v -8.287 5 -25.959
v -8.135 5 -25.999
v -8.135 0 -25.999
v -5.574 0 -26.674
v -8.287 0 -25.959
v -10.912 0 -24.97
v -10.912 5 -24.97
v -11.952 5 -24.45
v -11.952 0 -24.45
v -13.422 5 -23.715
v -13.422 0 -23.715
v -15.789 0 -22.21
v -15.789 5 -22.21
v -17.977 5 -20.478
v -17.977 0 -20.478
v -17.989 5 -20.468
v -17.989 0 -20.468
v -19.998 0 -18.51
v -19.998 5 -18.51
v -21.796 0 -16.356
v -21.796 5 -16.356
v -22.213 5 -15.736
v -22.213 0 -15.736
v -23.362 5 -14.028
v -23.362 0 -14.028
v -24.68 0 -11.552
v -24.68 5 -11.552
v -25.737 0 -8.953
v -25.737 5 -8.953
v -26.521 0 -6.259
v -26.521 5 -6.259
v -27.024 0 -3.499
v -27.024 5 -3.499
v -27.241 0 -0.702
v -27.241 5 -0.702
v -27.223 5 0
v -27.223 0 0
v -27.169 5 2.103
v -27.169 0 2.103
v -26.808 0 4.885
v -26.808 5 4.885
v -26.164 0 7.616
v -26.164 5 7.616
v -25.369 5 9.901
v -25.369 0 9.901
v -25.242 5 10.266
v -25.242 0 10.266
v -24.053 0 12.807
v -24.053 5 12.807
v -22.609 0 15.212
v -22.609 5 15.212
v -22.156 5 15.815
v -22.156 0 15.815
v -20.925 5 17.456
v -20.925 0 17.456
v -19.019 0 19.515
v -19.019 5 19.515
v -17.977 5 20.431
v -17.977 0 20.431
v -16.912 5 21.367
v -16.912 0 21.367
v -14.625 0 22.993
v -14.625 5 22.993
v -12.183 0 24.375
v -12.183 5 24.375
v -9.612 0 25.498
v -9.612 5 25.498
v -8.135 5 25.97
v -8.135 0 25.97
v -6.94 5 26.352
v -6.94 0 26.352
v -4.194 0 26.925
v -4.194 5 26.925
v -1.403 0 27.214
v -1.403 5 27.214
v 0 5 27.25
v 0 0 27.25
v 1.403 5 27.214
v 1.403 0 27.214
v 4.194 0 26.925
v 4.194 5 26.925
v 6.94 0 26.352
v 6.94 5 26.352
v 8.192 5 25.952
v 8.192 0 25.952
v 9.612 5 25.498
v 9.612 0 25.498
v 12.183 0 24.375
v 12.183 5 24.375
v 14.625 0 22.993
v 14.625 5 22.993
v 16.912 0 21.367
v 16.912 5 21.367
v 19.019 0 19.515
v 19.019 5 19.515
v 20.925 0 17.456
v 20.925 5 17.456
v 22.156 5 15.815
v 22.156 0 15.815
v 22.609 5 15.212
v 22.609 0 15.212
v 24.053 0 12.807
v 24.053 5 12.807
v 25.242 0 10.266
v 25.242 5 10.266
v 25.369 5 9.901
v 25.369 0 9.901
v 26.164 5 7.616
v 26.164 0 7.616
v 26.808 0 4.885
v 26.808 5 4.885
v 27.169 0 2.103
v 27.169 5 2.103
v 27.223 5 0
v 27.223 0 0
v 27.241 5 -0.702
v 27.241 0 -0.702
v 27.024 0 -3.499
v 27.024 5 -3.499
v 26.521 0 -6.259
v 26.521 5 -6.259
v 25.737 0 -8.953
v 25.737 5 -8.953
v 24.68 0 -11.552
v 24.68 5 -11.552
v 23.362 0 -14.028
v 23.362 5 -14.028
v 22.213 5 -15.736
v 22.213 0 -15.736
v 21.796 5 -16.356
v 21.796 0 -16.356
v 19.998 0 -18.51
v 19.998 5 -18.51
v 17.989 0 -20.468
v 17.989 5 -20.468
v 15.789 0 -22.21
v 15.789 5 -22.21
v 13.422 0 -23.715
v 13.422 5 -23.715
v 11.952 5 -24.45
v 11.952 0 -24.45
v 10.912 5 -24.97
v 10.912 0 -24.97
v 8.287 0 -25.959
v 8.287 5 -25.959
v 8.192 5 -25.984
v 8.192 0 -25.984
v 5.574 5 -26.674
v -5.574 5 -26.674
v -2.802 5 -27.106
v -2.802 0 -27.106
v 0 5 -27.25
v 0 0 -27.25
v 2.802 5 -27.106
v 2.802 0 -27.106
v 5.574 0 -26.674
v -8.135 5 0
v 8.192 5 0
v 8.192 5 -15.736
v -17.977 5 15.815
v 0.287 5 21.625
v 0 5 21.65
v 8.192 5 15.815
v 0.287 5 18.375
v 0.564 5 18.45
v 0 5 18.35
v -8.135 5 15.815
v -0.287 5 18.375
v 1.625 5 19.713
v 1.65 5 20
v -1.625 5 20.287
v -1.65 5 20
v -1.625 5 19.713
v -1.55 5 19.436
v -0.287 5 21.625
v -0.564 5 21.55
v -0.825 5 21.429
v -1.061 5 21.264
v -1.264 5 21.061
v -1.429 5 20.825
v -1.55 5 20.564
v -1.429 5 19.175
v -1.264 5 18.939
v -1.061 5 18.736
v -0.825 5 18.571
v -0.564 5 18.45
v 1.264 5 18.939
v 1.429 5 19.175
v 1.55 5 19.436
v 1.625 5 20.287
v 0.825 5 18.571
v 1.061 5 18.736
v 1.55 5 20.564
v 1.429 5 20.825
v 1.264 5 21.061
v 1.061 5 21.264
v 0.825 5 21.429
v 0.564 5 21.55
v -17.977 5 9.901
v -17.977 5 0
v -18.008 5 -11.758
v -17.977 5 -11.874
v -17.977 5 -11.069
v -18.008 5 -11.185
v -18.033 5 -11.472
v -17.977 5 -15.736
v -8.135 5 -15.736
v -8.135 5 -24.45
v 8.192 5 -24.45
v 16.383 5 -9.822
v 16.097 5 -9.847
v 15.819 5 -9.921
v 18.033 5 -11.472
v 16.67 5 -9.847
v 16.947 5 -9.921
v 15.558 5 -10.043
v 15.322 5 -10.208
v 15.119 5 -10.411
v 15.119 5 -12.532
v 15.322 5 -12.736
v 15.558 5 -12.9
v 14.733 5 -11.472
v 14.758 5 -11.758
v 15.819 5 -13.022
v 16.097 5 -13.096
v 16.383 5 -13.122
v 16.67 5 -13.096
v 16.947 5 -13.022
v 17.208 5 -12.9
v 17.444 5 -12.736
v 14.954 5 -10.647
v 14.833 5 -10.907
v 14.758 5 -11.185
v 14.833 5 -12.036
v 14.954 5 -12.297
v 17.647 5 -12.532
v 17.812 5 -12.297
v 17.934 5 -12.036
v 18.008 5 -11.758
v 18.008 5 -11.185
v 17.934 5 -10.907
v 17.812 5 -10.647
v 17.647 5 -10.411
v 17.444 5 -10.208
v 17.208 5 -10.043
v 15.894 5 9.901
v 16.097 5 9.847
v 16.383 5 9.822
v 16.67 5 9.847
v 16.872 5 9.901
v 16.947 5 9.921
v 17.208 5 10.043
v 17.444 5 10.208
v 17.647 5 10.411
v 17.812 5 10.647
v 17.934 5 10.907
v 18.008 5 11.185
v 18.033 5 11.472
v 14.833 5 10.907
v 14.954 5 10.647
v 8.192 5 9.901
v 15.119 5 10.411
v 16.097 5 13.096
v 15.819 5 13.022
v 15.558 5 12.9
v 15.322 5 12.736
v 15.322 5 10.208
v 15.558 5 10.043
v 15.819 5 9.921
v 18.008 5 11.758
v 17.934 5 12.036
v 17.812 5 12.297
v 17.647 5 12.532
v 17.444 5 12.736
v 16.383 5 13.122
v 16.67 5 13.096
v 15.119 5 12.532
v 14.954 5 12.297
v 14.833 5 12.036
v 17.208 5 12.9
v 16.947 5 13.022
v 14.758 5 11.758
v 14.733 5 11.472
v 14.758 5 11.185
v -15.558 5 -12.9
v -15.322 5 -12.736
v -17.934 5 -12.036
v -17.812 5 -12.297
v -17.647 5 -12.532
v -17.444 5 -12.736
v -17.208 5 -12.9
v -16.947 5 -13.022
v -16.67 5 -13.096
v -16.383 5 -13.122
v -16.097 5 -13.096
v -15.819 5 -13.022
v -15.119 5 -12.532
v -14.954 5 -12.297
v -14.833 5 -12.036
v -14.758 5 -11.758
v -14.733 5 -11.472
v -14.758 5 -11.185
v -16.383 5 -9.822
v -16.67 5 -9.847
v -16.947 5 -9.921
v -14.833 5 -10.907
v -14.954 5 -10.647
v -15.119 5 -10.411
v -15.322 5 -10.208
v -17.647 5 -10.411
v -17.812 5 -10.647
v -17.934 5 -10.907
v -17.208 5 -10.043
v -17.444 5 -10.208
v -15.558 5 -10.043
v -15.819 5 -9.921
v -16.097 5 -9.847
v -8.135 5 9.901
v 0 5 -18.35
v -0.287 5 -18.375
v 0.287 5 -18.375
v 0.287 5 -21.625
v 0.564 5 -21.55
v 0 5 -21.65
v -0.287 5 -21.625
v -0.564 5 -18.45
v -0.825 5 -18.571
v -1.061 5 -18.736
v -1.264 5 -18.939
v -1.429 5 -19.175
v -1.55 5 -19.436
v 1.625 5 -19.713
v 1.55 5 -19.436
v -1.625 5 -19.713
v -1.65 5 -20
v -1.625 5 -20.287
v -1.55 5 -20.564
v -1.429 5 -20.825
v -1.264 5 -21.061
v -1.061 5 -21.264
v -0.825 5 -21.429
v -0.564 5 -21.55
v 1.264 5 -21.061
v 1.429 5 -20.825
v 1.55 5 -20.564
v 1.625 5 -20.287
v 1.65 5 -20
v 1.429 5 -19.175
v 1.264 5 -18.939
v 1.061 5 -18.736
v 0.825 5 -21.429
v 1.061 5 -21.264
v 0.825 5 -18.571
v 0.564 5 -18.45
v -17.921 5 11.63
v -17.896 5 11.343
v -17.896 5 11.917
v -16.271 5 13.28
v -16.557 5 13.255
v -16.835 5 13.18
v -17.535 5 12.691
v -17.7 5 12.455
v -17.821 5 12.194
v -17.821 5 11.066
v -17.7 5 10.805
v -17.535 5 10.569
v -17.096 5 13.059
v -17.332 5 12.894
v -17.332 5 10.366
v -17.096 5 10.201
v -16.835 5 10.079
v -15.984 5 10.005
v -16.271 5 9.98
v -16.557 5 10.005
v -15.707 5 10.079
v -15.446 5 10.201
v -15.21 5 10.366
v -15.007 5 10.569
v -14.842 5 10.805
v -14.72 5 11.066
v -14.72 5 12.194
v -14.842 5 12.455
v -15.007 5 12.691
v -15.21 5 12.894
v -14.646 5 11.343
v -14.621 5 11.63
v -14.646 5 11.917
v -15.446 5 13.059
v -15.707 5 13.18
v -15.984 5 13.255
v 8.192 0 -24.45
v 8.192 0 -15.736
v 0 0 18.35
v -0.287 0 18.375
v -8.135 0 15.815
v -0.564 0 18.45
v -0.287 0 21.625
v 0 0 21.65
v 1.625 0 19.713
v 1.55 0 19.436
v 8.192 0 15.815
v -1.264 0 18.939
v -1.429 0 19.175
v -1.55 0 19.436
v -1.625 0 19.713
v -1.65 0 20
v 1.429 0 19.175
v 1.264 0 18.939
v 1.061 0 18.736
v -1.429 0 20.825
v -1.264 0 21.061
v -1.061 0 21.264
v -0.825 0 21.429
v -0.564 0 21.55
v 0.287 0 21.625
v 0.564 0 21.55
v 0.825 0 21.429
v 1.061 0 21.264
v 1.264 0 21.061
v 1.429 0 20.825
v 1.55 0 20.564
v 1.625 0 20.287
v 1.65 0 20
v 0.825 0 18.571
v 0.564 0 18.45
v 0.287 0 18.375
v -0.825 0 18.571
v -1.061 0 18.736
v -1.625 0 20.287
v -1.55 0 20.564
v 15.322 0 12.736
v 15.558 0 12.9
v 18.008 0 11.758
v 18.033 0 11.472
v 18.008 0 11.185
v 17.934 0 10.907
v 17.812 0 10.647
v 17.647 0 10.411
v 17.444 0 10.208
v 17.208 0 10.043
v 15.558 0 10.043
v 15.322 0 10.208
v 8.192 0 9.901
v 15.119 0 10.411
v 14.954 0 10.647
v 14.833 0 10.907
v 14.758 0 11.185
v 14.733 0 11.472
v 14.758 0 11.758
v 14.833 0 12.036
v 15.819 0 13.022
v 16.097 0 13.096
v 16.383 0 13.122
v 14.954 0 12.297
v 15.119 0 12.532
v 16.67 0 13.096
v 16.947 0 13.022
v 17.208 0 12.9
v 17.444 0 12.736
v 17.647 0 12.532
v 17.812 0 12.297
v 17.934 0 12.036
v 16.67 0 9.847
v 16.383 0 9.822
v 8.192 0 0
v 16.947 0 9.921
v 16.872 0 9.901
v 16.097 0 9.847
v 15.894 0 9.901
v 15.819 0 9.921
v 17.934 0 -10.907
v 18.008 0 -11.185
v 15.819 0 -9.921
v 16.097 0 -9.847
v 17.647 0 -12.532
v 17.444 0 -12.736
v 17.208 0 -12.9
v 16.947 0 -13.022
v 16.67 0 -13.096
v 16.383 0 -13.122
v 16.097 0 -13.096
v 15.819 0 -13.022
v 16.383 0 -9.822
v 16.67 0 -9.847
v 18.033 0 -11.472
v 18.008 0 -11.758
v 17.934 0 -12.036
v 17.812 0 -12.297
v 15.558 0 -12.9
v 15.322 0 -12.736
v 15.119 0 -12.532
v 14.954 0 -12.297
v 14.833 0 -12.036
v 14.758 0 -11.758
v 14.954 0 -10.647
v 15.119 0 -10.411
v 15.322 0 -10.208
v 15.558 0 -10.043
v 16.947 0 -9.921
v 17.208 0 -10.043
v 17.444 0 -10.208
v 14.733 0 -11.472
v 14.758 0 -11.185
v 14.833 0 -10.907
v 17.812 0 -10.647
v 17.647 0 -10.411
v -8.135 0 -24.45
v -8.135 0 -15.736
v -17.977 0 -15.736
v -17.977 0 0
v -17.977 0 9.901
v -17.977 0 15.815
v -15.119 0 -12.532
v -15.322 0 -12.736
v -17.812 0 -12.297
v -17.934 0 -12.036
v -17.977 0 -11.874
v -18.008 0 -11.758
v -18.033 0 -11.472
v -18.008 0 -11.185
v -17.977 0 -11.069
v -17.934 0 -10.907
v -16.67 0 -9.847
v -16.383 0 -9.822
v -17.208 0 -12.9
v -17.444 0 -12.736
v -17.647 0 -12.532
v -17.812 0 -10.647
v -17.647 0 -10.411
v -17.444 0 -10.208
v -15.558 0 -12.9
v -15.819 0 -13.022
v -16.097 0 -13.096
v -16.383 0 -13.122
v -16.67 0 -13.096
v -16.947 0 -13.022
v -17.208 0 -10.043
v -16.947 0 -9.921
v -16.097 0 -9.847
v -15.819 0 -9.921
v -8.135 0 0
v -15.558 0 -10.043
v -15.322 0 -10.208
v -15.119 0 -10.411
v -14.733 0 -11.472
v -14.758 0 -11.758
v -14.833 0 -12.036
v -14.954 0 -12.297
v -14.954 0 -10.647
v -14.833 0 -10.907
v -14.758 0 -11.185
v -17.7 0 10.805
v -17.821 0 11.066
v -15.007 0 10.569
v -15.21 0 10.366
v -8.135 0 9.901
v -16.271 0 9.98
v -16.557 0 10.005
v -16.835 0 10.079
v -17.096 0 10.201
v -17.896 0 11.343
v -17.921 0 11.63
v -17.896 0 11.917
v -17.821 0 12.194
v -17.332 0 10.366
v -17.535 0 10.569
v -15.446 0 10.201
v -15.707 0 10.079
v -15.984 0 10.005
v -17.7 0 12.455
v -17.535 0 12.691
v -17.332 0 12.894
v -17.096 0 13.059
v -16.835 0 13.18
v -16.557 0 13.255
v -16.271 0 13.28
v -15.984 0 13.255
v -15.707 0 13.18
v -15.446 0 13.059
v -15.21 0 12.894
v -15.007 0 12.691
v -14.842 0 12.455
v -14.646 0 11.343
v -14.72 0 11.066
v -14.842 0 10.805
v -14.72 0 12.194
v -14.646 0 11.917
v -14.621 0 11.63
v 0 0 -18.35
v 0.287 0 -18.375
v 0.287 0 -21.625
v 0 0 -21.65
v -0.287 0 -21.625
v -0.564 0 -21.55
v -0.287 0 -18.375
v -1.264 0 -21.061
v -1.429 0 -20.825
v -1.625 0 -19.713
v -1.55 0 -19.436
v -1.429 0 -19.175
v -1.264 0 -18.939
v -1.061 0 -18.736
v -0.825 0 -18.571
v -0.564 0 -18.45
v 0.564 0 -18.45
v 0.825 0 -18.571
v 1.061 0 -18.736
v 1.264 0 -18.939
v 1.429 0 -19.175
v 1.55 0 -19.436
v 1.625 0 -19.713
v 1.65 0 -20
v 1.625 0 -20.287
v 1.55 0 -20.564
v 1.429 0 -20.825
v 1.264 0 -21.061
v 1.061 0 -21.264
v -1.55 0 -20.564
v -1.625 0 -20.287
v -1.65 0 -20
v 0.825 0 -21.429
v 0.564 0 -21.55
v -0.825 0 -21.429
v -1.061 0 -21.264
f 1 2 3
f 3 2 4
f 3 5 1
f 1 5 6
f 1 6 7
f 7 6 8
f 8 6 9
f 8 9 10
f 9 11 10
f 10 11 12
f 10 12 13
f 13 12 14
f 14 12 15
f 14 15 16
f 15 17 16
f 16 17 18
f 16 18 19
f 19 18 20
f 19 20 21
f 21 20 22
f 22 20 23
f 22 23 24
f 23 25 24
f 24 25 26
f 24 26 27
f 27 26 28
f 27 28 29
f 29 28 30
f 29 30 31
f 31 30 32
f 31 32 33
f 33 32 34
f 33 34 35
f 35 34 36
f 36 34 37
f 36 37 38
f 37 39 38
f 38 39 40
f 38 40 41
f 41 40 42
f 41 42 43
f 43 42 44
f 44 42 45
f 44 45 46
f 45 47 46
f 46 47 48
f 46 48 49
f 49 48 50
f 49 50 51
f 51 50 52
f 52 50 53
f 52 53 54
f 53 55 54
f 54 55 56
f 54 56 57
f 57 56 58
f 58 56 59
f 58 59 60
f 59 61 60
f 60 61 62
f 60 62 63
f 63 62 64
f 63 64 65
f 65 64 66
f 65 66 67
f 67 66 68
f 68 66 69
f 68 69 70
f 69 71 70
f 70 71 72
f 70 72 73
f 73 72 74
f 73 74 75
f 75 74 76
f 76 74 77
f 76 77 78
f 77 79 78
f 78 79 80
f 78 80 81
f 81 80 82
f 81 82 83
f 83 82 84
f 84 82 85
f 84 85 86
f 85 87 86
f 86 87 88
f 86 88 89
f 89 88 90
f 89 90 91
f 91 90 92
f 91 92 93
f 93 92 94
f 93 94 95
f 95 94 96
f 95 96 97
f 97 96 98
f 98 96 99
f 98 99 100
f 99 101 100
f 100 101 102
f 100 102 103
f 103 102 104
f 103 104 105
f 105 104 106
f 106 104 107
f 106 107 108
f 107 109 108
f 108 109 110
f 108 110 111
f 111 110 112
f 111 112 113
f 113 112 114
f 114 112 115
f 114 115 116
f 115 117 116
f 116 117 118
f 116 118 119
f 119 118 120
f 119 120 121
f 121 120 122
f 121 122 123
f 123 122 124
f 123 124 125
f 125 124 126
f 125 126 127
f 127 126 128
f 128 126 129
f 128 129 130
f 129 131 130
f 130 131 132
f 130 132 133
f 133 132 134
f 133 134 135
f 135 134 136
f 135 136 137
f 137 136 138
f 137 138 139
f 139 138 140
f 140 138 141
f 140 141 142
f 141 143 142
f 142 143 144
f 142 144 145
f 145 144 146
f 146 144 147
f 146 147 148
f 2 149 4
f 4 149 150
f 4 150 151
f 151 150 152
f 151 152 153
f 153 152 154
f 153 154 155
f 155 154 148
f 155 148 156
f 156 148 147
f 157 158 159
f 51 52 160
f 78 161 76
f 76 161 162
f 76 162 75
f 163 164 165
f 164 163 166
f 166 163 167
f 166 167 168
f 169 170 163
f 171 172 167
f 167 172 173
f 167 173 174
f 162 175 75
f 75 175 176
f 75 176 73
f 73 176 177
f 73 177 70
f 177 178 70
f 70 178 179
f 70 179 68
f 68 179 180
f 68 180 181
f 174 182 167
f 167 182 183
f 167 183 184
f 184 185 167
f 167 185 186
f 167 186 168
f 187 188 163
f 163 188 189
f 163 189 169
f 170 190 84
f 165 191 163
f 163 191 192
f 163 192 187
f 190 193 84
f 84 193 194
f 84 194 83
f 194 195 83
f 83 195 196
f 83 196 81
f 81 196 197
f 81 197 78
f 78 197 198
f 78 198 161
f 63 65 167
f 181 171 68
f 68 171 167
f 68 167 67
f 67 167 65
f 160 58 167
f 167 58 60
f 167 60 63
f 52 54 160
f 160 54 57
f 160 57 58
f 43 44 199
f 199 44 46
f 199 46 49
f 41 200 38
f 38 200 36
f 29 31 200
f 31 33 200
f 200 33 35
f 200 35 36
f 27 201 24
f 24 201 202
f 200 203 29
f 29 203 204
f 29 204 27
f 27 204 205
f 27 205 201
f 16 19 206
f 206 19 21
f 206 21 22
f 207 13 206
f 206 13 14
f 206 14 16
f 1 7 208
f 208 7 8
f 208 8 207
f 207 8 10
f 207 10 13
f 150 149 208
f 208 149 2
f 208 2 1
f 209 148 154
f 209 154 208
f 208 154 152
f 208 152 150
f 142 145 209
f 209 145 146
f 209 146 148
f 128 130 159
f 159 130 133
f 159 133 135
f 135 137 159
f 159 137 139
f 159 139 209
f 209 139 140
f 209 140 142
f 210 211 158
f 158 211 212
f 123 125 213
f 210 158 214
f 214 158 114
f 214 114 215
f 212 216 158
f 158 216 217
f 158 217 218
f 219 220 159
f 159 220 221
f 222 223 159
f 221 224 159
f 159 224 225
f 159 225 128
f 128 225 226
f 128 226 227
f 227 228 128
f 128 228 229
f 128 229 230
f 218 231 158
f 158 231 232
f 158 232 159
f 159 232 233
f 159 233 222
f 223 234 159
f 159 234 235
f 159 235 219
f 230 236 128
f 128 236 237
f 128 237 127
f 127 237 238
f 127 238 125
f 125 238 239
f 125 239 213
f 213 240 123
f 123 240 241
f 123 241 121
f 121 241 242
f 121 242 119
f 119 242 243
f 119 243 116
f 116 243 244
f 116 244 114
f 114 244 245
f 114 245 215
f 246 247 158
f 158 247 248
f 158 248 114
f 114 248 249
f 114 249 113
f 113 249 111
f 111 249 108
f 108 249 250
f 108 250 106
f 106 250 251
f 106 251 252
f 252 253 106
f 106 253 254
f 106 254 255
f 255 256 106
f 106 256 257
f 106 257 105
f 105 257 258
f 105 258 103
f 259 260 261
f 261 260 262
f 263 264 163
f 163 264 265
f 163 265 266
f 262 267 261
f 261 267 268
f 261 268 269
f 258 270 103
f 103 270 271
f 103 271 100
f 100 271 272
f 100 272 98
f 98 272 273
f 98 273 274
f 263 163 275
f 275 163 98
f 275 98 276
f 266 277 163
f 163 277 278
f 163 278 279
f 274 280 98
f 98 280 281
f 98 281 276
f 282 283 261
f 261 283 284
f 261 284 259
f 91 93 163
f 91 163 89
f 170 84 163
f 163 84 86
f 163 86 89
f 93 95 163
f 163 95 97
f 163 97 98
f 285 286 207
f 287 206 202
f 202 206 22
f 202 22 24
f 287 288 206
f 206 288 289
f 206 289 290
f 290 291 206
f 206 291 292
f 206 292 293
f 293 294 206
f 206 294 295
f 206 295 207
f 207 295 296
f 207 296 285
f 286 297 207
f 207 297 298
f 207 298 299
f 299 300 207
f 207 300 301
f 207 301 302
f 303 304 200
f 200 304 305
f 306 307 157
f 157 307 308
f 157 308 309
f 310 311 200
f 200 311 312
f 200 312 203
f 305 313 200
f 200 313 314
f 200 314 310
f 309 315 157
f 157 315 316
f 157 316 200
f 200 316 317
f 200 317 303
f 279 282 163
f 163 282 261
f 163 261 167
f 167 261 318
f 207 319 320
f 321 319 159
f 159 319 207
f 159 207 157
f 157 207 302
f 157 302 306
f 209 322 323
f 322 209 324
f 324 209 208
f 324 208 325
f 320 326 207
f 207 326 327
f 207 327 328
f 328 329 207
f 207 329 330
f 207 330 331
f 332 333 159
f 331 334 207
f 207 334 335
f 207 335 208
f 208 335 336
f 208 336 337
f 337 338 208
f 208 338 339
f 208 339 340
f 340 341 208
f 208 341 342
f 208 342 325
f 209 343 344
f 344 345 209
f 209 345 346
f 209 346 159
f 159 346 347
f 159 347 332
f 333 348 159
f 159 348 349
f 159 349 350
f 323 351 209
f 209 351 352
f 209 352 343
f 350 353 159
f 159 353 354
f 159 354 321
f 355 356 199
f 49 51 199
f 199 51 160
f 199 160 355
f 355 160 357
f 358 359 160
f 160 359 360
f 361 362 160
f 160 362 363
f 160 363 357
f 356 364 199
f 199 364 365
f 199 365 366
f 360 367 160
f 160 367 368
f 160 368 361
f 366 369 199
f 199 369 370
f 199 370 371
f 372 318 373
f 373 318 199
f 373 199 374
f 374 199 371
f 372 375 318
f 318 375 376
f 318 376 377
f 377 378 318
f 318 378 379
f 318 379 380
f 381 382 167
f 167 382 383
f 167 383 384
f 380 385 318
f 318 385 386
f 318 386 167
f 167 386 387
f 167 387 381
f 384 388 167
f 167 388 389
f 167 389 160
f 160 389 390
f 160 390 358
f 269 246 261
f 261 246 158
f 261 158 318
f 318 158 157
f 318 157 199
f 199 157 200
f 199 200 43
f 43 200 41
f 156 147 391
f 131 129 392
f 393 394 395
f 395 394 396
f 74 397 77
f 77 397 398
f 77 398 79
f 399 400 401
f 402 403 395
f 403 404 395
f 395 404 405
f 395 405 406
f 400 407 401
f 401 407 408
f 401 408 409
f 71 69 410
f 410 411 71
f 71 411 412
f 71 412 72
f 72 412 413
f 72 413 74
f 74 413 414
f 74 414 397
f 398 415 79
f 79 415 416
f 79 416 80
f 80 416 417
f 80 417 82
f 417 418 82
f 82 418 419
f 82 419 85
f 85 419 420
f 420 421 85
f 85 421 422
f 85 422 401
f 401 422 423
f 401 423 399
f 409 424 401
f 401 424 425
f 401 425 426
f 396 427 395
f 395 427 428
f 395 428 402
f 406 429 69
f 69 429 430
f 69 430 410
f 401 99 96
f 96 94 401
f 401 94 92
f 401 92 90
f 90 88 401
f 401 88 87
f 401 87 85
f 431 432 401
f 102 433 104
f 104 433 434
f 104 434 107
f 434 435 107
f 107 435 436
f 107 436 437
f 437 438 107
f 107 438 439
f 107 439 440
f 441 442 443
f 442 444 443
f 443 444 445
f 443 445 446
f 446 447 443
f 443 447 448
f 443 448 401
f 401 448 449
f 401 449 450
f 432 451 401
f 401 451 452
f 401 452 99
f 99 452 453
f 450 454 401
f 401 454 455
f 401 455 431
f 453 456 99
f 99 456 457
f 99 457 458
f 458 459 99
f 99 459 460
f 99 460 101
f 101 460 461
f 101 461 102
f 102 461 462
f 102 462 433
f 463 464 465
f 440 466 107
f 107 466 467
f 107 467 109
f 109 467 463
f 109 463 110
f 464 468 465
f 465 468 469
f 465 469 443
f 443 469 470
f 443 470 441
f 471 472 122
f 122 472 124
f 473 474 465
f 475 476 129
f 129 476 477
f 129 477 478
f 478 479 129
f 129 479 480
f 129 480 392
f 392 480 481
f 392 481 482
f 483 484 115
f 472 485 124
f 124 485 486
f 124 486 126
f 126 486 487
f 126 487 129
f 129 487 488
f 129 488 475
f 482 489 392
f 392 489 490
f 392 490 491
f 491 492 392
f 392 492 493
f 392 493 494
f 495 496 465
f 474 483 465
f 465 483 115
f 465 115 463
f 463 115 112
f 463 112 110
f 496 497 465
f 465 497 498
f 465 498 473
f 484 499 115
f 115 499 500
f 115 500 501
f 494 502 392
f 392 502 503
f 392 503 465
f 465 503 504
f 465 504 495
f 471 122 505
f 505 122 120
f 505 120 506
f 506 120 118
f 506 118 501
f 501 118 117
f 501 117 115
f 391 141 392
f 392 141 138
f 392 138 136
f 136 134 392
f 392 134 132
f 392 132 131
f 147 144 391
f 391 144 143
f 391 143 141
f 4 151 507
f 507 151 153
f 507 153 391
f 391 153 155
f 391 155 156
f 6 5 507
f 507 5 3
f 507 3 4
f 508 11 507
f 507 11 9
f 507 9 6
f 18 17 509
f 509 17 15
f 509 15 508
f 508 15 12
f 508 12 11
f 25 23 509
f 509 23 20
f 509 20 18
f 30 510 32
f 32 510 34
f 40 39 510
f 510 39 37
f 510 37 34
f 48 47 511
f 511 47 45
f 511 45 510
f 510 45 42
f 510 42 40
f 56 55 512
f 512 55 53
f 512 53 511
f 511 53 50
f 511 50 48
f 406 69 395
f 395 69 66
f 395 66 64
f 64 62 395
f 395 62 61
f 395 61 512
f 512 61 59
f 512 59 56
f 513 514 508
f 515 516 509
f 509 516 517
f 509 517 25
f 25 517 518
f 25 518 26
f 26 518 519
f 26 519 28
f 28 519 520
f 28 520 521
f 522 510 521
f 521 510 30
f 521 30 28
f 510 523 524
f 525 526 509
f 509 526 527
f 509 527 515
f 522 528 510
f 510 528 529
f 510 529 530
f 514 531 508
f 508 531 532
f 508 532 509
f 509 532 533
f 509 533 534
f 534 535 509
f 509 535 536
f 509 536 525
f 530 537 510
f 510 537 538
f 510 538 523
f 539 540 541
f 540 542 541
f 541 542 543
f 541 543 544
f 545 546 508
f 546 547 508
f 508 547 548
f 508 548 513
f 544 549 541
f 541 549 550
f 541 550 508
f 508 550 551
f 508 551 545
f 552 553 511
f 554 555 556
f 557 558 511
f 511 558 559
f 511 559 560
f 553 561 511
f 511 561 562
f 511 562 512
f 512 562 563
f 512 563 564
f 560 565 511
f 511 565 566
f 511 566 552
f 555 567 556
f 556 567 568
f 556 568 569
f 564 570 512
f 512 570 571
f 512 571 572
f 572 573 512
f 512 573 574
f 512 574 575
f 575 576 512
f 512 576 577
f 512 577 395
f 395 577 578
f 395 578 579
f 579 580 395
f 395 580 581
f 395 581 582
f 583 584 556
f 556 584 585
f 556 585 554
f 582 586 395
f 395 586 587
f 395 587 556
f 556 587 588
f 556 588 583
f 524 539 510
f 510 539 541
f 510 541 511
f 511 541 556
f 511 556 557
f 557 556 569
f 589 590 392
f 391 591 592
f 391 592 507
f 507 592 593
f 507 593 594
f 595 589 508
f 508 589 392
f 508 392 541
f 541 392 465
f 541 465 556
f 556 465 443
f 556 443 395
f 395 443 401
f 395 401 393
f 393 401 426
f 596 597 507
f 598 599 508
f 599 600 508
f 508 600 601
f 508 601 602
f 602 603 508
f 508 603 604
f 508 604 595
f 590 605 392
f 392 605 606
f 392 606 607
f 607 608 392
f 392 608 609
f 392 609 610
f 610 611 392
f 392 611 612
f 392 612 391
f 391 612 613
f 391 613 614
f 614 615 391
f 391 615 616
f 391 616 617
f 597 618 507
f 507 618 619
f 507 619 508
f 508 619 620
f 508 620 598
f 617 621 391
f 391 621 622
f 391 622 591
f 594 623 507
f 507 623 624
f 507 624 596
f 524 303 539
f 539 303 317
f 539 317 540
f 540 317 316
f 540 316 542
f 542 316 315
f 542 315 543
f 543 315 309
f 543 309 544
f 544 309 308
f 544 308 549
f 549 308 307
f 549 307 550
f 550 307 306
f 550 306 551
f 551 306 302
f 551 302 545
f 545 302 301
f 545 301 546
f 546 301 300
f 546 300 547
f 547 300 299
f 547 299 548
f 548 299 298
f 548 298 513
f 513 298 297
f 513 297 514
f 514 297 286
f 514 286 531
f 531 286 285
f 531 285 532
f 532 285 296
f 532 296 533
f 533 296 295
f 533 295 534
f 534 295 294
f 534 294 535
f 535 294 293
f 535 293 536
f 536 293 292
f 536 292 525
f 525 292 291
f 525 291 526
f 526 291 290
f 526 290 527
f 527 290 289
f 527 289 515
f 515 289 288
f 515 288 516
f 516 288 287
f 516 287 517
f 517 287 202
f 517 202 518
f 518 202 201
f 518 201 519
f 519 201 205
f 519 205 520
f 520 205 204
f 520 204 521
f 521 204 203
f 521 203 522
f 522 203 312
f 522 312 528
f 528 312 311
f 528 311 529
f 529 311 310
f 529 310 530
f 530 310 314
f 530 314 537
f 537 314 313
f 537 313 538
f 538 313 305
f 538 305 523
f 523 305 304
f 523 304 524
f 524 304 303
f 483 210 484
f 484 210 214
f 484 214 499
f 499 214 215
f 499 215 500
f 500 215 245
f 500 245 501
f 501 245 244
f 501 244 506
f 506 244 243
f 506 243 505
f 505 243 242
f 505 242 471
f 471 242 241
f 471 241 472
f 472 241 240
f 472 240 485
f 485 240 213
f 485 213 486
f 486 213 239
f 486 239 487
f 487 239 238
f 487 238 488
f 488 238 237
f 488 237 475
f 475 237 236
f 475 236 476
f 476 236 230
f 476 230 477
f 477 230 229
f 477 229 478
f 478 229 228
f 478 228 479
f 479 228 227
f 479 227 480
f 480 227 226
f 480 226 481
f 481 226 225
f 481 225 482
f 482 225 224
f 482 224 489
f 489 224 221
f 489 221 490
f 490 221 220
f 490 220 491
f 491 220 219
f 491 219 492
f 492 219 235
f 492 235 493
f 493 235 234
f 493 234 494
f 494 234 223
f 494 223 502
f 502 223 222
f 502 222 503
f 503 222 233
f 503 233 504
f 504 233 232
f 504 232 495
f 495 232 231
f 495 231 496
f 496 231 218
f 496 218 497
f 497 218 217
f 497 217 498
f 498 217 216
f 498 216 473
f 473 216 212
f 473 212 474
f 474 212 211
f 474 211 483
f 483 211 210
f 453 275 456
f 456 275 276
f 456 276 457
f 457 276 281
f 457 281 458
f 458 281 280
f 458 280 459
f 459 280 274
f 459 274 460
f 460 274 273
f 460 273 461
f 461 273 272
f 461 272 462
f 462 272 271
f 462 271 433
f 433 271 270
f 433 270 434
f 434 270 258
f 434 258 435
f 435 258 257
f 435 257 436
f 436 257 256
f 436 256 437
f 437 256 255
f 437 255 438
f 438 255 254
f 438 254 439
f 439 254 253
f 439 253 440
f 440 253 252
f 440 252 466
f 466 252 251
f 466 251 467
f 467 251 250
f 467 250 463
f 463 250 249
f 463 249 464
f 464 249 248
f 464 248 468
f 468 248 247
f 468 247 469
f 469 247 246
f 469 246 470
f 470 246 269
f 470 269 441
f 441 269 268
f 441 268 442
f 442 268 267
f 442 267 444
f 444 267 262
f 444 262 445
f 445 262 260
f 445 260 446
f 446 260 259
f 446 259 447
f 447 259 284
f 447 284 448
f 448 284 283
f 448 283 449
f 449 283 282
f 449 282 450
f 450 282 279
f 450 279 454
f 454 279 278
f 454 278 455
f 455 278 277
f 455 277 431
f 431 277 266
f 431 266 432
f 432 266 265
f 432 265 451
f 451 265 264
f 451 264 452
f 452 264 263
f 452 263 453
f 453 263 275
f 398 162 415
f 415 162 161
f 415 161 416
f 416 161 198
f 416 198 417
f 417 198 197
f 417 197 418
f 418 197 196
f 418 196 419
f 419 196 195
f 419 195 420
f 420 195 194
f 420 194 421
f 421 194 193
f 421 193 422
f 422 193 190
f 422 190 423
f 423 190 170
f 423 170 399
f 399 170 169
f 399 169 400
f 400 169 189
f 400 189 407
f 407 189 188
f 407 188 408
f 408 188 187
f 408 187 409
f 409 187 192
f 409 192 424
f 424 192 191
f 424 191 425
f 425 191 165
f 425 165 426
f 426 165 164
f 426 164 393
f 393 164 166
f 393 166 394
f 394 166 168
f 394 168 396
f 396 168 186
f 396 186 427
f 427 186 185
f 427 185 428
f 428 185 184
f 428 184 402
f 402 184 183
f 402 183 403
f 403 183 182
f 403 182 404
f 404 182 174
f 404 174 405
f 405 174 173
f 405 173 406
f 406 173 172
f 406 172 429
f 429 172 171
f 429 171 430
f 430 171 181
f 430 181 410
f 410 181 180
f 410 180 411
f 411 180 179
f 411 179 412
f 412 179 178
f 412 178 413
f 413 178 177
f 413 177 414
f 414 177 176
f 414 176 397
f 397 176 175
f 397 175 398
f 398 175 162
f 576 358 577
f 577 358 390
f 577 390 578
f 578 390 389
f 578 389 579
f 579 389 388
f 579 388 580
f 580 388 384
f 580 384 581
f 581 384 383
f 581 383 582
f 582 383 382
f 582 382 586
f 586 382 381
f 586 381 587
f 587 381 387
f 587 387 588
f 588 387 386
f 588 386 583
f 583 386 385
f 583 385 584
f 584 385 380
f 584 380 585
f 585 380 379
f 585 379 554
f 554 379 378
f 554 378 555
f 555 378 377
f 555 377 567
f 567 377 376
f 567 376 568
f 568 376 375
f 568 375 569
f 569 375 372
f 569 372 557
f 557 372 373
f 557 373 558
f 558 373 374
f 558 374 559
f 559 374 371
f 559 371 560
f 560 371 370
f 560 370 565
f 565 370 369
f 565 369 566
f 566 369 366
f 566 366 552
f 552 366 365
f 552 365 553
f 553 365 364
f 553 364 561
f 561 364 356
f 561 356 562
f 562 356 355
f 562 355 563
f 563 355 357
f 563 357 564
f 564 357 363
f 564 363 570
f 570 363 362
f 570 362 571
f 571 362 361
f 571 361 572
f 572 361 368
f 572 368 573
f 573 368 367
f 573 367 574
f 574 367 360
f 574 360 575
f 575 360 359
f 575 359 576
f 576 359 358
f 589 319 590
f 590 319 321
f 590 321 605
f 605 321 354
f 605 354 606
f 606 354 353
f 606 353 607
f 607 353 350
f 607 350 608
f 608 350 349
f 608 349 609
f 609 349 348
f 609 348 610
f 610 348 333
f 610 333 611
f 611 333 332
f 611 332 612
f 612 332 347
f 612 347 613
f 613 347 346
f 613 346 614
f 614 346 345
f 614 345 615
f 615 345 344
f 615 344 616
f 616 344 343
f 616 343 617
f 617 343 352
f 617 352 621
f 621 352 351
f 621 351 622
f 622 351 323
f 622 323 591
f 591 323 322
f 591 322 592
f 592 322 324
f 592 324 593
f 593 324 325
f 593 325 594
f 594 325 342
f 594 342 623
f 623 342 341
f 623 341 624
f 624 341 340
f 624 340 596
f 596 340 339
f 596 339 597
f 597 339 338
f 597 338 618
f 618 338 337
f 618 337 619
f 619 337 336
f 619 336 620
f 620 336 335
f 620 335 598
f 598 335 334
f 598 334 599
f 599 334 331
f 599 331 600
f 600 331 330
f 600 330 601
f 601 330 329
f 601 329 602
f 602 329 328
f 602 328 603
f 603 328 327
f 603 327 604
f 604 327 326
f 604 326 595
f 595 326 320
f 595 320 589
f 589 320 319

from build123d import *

# Parameters (mm, degrees)
SKETCH1_R           = 27.25
BOSS_EXTRUDE1_DEPTH = 5
SKETCH2_R           = 1.65
CUT_EXTRUDE1_DEPTH  = 10


with BuildPart() as part:
    # Sketch1 → Boss-Extrude1 (new body)
    with BuildSketch(Plane(origin=(0, 0, 0), x_dir=(1, 0, 0), z_dir=(0, 1, 0))):
        with Locations(Location((0, 0, 0), (0, 0, 270))):
            Circle(SKETCH1_R)
    extrude(amount=BOSS_EXTRUDE1_DEPTH)

    # Sketch2 → Cut-Extrude1 (cut)
    with BuildSketch(Plane(origin=(0, 5, 0), x_dir=(1, 0, 0), z_dir=(0, 1, 0))):
        with Locations(Location((0, 20, 0), (0, 0, 270))):
            Circle(SKETCH2_R)
        with Locations(Location((-16.383040886, 11.471528727, 0), (0, 0, 270))):
            Circle(SKETCH2_R)
        with Locations(Location((16.383040886, 11.471528727, 0), (0, 0, 270))):
            Circle(SKETCH2_R)
        with Locations(Location((16.383040886, -11.471528727, 0), (0, 0, 270))):
            Circle(SKETCH2_R)
        with Locations(Location((0, -20, 0), (0, 0, 270))):
            Circle(SKETCH2_R)
        with Locations(Location((-16.27093552, -11.629989565, 0), (0, 0, 270))):
            Circle(SKETCH2_R)
    extrude(amount=-CUT_EXTRUDE1_DEPTH, mode=Mode.SUBTRACT)


solid = part.part
